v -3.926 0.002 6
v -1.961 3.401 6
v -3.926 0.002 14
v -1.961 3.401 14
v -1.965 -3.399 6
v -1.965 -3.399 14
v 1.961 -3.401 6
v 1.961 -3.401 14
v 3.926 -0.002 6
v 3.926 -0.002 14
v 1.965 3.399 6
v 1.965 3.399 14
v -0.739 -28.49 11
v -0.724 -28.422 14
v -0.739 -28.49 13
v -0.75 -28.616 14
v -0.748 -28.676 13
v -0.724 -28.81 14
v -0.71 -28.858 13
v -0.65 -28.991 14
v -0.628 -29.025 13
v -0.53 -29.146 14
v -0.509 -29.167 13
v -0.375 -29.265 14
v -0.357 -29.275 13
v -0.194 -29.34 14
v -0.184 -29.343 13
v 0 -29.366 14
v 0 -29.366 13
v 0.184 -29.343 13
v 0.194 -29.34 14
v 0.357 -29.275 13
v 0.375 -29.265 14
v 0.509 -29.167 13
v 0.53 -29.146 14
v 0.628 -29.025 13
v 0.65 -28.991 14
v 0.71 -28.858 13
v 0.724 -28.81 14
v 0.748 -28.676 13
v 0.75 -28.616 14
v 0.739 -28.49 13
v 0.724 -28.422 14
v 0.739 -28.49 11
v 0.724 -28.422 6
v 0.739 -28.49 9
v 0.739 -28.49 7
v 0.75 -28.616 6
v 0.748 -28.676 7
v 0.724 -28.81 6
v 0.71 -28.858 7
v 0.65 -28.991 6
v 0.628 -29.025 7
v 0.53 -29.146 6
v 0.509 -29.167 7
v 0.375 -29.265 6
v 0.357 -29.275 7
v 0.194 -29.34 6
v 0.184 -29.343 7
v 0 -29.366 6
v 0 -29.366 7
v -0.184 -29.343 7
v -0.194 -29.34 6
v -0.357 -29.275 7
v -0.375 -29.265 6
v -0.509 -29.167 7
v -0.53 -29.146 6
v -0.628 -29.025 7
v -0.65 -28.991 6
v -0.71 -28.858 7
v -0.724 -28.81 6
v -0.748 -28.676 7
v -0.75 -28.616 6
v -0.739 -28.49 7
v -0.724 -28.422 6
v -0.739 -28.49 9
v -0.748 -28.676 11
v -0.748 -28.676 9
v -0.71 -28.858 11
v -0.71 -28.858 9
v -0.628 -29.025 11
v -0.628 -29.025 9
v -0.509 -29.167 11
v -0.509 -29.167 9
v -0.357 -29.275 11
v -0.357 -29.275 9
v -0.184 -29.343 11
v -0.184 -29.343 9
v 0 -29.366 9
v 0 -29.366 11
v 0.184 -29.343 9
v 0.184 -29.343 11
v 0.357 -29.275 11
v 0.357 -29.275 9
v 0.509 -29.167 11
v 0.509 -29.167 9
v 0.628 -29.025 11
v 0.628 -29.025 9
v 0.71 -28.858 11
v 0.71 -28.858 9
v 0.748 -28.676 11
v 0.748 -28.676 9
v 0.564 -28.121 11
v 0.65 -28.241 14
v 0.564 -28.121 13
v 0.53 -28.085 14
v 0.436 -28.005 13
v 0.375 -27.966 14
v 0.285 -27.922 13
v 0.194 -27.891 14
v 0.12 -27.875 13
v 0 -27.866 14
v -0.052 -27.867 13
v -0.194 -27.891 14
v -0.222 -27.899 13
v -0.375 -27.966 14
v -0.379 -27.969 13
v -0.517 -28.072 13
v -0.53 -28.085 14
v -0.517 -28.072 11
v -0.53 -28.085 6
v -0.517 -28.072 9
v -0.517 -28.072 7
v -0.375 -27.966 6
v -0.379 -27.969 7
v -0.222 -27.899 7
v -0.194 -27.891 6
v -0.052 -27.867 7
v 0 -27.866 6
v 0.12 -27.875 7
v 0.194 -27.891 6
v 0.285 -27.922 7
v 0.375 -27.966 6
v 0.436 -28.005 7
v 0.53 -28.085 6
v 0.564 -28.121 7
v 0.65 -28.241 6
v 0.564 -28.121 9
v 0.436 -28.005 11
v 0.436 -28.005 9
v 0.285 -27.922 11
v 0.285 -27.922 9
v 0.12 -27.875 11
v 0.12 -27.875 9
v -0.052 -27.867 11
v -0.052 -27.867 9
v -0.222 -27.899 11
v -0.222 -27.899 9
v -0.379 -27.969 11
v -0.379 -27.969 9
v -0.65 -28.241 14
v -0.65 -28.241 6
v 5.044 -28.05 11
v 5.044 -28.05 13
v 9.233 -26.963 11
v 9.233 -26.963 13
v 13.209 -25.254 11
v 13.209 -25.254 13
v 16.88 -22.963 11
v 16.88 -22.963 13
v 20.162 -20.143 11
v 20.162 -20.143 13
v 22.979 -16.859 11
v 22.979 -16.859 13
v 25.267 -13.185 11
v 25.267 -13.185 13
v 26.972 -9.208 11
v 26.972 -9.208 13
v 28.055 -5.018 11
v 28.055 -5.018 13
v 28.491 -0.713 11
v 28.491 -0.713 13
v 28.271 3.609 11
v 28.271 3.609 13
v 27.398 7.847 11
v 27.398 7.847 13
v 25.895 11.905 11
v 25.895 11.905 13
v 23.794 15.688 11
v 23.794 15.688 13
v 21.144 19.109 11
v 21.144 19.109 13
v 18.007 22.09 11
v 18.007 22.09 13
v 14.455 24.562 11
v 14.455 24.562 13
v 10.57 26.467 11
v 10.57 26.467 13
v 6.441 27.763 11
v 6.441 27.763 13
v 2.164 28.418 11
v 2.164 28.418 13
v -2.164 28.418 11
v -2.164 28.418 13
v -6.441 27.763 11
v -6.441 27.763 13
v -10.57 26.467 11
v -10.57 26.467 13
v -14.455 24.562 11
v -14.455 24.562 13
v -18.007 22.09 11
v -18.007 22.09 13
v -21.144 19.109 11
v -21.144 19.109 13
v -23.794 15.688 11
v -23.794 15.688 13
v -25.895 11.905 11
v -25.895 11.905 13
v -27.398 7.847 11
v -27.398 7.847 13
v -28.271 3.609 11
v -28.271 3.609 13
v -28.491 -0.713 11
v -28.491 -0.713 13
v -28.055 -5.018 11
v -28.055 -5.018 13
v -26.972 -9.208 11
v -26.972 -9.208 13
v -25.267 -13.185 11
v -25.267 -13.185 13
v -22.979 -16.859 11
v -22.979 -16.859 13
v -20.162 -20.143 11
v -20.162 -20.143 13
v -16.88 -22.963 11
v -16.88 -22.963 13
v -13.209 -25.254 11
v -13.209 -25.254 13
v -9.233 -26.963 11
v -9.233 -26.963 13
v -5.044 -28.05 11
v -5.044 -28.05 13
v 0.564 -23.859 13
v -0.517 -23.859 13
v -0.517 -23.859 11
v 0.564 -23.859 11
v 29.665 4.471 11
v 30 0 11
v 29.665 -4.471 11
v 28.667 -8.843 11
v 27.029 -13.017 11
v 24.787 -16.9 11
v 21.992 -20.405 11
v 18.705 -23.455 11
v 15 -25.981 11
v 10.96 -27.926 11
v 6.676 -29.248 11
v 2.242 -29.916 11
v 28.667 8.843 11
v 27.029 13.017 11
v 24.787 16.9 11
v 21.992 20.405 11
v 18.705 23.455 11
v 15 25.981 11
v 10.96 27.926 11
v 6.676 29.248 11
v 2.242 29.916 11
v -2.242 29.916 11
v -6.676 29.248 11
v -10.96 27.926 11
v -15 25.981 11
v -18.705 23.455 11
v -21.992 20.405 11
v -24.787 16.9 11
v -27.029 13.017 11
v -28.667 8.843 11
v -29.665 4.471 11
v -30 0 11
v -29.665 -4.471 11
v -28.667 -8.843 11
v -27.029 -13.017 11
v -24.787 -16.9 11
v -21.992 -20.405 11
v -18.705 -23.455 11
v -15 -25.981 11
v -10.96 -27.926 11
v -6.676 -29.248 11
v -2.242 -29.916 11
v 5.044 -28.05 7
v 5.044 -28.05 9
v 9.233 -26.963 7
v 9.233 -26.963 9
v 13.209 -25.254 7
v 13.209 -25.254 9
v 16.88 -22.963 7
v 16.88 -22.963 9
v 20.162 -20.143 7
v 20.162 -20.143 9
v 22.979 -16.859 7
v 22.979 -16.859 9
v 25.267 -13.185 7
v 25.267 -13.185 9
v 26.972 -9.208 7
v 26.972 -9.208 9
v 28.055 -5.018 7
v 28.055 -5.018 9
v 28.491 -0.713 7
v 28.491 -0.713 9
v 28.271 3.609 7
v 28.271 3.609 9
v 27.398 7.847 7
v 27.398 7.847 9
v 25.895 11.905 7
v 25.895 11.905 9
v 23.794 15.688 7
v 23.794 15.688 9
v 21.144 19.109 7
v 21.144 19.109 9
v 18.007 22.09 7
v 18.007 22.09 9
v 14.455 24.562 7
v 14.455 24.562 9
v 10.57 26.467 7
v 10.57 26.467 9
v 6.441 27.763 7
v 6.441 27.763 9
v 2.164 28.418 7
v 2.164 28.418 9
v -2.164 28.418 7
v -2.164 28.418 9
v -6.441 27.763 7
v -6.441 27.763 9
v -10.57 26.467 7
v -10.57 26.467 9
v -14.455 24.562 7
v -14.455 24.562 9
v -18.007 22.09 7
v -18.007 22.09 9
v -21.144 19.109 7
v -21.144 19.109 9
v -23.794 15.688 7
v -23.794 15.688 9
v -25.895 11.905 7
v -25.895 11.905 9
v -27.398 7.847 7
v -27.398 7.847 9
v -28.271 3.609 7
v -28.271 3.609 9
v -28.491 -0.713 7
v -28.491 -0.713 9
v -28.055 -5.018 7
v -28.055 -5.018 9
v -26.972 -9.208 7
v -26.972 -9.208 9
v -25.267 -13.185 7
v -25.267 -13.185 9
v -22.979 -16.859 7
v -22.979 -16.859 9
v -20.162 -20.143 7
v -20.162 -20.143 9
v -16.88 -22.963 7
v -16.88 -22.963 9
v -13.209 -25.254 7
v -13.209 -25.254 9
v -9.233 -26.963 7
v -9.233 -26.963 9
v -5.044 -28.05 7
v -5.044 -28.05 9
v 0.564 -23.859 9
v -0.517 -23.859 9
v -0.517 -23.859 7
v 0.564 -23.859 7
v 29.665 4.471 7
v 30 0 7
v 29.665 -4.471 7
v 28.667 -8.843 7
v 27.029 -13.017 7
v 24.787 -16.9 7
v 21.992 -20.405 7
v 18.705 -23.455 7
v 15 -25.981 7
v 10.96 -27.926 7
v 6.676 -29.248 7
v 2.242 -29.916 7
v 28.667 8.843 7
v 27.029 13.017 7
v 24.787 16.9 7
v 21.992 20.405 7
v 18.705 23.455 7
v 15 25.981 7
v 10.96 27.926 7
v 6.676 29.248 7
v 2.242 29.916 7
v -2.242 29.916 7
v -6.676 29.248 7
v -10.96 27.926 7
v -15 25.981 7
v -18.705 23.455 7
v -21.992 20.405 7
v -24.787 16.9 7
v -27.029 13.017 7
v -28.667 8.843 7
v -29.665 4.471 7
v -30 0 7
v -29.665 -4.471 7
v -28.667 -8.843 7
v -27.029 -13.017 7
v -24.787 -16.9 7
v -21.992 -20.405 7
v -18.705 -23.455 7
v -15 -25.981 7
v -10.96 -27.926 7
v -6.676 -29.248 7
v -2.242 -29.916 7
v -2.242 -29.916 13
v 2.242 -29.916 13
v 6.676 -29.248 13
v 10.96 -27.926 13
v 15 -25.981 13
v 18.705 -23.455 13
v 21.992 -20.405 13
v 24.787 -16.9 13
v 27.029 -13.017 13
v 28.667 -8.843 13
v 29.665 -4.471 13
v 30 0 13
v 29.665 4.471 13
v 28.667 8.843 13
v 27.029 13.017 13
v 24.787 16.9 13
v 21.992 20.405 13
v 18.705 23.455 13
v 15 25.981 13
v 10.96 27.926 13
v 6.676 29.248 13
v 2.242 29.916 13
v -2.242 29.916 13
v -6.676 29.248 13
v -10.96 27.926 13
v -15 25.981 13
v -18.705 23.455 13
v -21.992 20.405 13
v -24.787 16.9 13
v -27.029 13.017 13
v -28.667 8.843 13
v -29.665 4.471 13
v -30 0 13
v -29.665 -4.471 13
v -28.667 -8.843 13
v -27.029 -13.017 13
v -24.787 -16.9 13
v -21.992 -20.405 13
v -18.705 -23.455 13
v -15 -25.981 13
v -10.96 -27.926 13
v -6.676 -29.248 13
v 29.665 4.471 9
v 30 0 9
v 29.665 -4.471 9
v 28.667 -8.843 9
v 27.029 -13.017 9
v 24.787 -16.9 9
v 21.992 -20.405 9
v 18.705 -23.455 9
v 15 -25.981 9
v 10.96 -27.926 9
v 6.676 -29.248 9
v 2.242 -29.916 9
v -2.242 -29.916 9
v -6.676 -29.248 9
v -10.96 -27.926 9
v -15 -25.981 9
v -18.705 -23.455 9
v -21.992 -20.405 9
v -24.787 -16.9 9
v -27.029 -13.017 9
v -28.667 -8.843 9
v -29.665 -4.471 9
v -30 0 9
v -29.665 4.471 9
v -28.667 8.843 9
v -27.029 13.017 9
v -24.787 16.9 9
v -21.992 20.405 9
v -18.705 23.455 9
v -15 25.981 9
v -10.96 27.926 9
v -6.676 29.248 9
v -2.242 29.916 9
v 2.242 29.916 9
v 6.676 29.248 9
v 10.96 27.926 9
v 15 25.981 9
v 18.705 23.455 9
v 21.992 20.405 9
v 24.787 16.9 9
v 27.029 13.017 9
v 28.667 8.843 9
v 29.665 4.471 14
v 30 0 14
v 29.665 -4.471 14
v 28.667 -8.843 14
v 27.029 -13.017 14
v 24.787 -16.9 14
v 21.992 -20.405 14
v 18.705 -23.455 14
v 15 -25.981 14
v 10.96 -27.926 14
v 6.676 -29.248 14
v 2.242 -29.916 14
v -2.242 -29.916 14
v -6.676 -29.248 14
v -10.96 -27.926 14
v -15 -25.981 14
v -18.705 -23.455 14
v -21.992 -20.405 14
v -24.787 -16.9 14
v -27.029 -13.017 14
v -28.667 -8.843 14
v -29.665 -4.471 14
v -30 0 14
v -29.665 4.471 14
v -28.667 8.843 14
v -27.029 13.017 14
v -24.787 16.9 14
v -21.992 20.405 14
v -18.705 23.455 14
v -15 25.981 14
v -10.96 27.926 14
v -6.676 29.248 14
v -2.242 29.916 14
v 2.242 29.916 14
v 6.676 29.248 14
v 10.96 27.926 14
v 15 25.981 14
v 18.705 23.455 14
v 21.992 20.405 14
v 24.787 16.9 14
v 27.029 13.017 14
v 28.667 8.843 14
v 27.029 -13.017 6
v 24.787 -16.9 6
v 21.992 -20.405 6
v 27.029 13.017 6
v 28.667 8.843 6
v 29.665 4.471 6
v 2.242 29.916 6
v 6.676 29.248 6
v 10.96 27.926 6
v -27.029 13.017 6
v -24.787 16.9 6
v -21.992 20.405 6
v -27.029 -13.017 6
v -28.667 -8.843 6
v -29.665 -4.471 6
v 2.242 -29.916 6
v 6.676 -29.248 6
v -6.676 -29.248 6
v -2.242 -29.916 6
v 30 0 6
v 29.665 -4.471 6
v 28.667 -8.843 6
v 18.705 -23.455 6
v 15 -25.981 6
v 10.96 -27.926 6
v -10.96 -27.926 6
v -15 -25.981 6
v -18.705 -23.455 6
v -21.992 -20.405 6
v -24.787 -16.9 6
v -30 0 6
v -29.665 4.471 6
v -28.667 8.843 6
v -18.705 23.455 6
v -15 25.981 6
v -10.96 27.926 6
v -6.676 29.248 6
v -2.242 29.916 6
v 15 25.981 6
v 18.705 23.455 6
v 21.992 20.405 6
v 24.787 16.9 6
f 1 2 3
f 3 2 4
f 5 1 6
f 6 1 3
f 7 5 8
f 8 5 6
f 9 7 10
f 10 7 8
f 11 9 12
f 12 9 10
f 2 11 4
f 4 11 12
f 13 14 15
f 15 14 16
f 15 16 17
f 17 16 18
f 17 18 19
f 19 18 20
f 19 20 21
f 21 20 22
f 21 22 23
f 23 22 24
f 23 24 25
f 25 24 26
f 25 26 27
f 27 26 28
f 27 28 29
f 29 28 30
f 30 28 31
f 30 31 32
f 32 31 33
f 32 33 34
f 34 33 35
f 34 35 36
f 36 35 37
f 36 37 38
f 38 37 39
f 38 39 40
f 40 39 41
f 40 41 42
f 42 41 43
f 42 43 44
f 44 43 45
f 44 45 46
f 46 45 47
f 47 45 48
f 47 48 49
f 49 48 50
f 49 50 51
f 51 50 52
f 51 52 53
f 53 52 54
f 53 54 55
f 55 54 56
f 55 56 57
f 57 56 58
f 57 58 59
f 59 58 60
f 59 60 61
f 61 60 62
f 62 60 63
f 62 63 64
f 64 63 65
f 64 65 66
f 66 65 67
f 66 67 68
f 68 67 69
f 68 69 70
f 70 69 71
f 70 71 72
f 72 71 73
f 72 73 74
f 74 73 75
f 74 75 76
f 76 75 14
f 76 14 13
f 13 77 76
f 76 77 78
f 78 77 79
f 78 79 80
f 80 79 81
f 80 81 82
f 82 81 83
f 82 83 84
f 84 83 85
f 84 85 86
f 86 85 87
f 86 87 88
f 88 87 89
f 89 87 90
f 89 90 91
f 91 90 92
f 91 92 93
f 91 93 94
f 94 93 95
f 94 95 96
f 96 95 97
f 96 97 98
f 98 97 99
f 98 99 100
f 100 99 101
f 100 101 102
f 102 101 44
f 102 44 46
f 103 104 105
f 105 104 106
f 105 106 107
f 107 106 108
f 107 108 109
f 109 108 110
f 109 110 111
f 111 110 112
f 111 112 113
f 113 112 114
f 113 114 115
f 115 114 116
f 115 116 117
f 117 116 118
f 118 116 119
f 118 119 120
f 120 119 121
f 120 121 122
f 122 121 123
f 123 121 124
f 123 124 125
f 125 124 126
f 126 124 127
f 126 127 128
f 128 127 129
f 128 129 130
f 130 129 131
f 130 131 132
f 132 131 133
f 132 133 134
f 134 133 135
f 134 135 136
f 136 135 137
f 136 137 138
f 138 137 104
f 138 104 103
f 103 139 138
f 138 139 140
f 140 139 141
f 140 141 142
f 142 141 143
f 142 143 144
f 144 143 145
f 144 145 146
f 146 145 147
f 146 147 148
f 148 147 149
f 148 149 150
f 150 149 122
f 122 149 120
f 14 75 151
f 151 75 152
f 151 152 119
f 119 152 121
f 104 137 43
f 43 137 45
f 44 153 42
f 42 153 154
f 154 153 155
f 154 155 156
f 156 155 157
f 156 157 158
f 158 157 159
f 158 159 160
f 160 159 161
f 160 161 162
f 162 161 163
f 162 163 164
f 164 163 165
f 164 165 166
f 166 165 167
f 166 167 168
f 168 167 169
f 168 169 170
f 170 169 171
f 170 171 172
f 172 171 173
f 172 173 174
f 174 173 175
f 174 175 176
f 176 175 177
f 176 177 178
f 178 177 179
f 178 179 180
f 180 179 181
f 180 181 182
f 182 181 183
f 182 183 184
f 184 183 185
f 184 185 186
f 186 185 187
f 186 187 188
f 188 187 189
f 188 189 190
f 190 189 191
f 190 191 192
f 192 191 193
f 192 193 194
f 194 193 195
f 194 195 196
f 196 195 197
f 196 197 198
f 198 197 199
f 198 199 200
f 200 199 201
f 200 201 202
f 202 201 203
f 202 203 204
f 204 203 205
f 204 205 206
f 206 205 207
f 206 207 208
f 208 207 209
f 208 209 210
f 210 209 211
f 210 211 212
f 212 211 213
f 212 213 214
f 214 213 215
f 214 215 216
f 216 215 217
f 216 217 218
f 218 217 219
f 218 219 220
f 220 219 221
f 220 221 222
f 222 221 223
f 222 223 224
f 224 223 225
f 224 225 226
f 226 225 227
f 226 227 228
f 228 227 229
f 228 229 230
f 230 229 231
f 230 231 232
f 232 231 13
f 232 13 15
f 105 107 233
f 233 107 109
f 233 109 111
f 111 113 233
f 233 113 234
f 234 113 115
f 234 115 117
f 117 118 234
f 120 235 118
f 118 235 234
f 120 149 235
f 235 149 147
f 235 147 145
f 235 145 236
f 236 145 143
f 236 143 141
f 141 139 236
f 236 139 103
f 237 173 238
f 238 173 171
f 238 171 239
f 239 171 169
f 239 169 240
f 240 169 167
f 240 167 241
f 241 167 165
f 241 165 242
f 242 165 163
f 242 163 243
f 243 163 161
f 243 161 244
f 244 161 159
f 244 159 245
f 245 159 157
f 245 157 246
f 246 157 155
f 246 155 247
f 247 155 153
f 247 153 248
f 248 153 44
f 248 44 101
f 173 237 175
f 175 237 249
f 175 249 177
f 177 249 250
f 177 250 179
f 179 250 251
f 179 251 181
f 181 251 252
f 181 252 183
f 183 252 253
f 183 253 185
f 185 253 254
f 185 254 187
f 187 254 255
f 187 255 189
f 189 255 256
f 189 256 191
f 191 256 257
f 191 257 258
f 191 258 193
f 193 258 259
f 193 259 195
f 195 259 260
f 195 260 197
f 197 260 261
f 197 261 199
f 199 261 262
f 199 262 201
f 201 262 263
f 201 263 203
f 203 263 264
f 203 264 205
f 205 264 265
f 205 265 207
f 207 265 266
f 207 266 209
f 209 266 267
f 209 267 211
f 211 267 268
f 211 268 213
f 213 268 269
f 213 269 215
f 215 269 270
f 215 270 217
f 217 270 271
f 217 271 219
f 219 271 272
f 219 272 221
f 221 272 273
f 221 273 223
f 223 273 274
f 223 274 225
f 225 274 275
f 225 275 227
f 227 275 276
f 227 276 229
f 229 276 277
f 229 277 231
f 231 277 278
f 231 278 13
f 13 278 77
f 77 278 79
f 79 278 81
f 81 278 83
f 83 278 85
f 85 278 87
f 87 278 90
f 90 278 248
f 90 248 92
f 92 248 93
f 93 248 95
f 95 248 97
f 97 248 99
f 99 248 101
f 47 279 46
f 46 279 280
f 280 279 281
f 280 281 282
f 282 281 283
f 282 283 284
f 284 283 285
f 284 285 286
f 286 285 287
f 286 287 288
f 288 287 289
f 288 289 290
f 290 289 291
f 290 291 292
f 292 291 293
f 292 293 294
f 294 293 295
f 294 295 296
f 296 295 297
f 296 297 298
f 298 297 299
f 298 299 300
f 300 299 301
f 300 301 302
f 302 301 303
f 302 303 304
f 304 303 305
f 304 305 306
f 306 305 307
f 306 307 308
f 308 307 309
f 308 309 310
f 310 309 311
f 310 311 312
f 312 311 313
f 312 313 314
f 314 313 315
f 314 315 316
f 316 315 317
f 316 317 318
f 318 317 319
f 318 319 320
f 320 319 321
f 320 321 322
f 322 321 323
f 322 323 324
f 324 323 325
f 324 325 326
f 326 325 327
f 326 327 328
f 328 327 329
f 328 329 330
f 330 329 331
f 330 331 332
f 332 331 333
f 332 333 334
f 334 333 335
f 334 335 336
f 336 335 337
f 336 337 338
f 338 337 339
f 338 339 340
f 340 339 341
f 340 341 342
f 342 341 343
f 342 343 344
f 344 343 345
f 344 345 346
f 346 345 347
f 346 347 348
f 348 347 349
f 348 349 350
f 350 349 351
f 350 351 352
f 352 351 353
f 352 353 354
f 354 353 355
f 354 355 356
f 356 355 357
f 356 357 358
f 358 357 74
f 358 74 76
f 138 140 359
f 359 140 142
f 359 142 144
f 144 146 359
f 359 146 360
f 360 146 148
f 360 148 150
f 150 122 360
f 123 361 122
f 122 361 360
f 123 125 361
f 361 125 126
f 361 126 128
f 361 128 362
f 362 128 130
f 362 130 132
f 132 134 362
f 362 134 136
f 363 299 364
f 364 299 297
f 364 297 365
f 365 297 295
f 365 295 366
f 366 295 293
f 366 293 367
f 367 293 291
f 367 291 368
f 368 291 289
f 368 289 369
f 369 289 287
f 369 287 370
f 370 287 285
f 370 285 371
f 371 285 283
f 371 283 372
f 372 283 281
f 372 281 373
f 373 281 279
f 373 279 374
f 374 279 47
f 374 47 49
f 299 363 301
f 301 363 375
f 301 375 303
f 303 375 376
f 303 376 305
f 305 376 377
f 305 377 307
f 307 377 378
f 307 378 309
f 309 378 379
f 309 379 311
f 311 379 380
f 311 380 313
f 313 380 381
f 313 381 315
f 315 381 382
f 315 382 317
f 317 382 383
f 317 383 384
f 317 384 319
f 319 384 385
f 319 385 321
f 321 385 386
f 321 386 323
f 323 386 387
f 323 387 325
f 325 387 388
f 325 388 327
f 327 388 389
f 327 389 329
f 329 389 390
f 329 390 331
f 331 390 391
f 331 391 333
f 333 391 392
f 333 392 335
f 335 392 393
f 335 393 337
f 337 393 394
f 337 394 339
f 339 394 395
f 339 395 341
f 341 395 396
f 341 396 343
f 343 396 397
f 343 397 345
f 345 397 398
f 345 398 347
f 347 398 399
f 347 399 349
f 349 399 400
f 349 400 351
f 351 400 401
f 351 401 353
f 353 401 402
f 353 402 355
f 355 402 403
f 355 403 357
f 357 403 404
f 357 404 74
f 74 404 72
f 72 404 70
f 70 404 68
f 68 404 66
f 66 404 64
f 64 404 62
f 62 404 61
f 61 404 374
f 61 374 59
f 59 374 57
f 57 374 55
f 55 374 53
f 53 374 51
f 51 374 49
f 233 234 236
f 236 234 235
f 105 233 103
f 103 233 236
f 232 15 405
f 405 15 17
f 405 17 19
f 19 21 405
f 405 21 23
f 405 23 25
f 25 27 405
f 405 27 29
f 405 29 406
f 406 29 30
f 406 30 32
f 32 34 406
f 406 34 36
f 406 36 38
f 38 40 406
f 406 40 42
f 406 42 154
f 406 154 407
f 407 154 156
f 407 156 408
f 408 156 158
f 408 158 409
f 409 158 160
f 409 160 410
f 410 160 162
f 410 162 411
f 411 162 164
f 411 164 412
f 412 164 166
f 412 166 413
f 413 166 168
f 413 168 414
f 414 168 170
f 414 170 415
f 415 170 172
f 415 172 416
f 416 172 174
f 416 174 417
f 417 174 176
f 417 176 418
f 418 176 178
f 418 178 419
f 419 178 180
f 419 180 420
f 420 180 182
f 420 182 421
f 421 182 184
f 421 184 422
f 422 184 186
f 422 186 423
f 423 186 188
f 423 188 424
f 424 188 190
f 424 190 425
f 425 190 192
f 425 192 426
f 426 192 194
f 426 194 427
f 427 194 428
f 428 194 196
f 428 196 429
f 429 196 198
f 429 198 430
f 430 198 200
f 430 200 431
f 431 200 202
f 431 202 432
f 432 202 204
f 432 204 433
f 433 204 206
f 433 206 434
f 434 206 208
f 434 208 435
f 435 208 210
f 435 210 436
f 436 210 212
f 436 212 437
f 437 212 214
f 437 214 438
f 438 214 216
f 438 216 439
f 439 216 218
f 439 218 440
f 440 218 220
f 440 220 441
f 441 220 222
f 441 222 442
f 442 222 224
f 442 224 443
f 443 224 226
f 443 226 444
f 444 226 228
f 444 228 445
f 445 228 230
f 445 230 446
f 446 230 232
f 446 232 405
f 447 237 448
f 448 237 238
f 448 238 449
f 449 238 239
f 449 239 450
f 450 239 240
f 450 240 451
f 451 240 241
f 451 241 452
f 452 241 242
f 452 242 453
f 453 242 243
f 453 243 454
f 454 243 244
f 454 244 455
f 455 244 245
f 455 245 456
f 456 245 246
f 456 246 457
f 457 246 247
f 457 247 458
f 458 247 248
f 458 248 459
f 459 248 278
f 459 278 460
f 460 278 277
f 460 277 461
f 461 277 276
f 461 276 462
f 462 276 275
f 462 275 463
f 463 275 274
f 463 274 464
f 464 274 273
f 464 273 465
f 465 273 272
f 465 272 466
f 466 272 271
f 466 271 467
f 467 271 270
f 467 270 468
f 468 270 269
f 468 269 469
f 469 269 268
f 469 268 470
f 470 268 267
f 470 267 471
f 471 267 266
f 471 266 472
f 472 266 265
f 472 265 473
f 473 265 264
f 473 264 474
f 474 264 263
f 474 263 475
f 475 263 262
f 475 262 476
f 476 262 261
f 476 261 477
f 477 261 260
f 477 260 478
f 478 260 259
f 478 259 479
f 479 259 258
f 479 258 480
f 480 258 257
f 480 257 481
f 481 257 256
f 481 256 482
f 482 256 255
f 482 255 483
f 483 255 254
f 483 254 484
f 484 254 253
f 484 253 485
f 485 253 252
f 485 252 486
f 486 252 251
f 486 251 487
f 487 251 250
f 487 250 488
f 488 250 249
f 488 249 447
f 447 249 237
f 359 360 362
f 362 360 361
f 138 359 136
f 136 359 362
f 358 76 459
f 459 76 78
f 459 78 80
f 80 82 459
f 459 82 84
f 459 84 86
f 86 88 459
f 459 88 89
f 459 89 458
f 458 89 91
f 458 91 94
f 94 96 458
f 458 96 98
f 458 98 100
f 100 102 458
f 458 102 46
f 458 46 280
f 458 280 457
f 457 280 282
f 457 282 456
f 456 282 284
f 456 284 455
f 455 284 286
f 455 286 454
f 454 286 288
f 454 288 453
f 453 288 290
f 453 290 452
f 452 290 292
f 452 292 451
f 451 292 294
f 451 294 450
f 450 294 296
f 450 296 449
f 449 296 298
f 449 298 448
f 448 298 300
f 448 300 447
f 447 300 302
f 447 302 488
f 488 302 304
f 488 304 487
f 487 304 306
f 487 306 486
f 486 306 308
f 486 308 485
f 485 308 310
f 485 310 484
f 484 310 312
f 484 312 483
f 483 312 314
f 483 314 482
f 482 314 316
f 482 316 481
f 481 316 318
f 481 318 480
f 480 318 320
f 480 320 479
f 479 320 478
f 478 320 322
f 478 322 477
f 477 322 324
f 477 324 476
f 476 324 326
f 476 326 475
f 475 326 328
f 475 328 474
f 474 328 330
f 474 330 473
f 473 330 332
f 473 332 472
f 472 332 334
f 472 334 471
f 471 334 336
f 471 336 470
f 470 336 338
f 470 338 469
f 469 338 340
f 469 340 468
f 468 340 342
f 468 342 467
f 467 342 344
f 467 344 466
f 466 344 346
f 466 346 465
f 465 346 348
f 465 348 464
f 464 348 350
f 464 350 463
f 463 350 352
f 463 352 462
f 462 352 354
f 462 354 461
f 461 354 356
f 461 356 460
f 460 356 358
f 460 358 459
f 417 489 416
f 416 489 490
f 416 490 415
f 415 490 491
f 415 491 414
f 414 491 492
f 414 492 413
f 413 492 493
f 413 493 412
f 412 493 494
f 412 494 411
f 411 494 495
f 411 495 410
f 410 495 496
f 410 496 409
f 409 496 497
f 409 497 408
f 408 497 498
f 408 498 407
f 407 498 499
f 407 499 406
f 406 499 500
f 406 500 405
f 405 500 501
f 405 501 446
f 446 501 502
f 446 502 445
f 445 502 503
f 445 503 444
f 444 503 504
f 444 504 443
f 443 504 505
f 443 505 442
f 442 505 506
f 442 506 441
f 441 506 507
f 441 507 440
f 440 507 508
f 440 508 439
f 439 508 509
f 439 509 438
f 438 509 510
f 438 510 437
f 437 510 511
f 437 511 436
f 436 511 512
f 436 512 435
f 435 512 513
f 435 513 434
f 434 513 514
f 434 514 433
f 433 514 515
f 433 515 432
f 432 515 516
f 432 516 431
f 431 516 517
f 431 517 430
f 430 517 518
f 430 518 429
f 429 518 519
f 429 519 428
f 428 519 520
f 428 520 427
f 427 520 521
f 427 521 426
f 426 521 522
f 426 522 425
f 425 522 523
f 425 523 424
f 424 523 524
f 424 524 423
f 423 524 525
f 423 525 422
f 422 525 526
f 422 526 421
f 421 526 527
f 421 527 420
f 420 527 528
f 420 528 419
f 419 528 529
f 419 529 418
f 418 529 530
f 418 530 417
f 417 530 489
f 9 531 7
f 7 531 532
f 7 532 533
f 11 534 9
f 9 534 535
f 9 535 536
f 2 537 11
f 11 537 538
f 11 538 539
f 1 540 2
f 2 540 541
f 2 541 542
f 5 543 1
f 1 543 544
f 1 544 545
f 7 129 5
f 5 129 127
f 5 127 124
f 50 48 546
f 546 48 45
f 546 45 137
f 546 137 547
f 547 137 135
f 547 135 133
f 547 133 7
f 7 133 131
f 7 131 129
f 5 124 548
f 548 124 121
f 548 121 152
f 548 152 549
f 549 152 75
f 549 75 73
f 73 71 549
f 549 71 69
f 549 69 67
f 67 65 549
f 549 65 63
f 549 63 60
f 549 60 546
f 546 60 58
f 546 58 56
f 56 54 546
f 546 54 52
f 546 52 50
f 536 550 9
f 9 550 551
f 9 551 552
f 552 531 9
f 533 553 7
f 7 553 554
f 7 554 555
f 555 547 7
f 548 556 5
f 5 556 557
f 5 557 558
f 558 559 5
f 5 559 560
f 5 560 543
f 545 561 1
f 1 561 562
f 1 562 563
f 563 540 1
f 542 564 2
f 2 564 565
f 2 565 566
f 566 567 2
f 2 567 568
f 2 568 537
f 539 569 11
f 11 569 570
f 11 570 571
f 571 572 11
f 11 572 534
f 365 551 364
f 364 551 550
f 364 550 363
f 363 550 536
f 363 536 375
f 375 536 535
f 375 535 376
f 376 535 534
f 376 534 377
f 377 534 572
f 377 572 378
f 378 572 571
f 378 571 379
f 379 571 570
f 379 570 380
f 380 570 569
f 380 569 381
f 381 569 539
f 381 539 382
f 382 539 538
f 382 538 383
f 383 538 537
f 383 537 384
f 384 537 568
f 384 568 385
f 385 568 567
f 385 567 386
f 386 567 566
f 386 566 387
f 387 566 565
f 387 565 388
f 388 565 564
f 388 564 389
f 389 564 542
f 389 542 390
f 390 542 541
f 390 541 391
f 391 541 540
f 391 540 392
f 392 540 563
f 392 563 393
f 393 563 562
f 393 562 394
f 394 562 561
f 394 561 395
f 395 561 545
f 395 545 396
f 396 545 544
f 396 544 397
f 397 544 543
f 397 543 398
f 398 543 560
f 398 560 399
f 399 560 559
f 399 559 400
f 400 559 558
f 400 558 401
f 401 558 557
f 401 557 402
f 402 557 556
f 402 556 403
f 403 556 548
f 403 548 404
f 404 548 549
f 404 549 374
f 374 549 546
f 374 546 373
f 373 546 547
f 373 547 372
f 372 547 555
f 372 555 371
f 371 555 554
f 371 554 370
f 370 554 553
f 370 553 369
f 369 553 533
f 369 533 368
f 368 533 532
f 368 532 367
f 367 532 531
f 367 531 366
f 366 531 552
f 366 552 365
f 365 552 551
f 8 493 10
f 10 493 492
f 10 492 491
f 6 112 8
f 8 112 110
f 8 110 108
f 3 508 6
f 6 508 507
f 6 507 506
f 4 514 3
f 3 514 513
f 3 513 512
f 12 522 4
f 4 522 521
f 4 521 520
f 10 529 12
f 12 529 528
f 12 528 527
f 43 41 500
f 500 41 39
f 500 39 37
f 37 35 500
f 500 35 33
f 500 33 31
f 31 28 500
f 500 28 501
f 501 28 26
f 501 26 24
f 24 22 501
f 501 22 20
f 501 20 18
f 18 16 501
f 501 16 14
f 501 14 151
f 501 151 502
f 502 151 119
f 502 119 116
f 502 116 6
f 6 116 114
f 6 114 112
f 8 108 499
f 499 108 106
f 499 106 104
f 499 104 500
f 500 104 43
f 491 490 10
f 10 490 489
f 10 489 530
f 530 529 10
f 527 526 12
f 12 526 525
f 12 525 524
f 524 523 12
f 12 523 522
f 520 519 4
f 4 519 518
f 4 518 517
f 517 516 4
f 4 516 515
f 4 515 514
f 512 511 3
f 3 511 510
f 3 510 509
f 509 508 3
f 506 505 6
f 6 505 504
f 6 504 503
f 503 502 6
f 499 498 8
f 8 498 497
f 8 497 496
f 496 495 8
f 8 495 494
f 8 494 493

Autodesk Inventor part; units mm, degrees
ref_plane "YZ Plane" through (0, 0, 0) normal (1, 0, 0) x (0, 1, 0)
ref_plane "XZ Plane" through (0, 0, 0) normal (0, 1, 0) x (-1, 0, 0)
ref_plane "XY Plane" through (0, 0, 0) normal (0, 0, 1) x (1, 0, 0)
sketch "Sketch3" plane through (0, 0, 0) normal (0, 0, 1) x (1, 0, 0)
  circle A0 centre (0, 0) radius 4.45
  dimension "d11" = 8.9
extrude "Extrusion3" add sketch "Sketch3" along normal blind 6
sketch "Sketch4" plane through (0, 0, 6) normal (0, 0, 1) x (1, 0, 0)
  circle A0 centre (0, 0) radius 30
  dimension "d14" = 60
extrude "Extrusion4" add sketch "Sketch4" along normal blind 8
ref_plane "Work Plane2" through (0, 0, 8) normal (0, 0, 1) x (1, 0, 0)
ref_plane "Work Plane1" through (0, 0, 10) normal (0, 0, 1) x (1, 0, 0)
sketch "Sketch5" plane through (0, 0, 8) normal (0, 0, 1) x (1, 0, 0)
  arc A0 (0.5639, -28.4944) -> (-0.5169, -28.4953) centre (0, 0) ccw
  circle A1 centre (0, 0) radius 30
  line L0 (0.5639, -28.4944) -> (0.5639, -23.859)
  line L1 (0.5639, -23.859) -> (-0.5169, -23.859)
  line L2 (-0.5169, -23.859) -> (-0.5169, -28.4953)
  dimension "d17" = 57
  dimension "d18" = 60
extrude "Extrusion5" cut sketch "Sketch5" along normal mid plane 2
mirror "Mirror1" about plane through (0, 0, 10) normal (0, 0, 1) of "Extrusion5"
sketch "Sketch9" plane through (0, 0, 0) normal (0, 0, -1) x (-1, 0, 0)
  circle A0 centre (0, 0) radius 4.45 projected
  circle A1 centre (0, 0) radius 4.45
  dimension "d40" = 8.9
extrude "Extrusion9" cut sketch "Sketch9" against normal blind 6
sketch "Sketch10" plane through (0, 0, 14) normal (0, 0, 1) x (1, 0, 0)
  circle A0 centre (0, -28.6156) radius 0.75
  point P0 (0, 0)
  dimension "d43" = 1.5
extrude "Extrusion10" cut sketch "Sketch10" against normal blind 10
sketch "Sketch11" plane through (0, 0, 14) normal (0, 0, 1) x (1, 0, 0)
  line L0 (1.9614, -3.4009) -> (-1.9645, -3.3991)
  line L1 (-1.9645, -3.3991) -> (-3.926, 0.0018)
  line L2 (-3.926, 0.0018) -> (-1.9614, 3.4009)
  line L3 (-1.9614, 3.4009) -> (1.9645, 3.3991)
  line L4 (1.9645, 3.3991) -> (3.926, -0.0018)
  line L5 (3.926, -0.0018) -> (1.9614, -3.4009)
  point P0 (0, 0)
  point P1 (0, 0)
  dimension "d46" = 6.8
extrude "Extrusion11" cut sketch "Sketch11" against normal blind 10
ref_plane "Work Plane3" through (0, 0, 10) normal (0, 0, 1) x (1, 0, 0)
ref_plane "Work Plane4" through (0, 0, 12) normal (0, 0, 1) x (1, 0, 0)
properties part number "PulleyWithHole" material "ABS Plastic"
